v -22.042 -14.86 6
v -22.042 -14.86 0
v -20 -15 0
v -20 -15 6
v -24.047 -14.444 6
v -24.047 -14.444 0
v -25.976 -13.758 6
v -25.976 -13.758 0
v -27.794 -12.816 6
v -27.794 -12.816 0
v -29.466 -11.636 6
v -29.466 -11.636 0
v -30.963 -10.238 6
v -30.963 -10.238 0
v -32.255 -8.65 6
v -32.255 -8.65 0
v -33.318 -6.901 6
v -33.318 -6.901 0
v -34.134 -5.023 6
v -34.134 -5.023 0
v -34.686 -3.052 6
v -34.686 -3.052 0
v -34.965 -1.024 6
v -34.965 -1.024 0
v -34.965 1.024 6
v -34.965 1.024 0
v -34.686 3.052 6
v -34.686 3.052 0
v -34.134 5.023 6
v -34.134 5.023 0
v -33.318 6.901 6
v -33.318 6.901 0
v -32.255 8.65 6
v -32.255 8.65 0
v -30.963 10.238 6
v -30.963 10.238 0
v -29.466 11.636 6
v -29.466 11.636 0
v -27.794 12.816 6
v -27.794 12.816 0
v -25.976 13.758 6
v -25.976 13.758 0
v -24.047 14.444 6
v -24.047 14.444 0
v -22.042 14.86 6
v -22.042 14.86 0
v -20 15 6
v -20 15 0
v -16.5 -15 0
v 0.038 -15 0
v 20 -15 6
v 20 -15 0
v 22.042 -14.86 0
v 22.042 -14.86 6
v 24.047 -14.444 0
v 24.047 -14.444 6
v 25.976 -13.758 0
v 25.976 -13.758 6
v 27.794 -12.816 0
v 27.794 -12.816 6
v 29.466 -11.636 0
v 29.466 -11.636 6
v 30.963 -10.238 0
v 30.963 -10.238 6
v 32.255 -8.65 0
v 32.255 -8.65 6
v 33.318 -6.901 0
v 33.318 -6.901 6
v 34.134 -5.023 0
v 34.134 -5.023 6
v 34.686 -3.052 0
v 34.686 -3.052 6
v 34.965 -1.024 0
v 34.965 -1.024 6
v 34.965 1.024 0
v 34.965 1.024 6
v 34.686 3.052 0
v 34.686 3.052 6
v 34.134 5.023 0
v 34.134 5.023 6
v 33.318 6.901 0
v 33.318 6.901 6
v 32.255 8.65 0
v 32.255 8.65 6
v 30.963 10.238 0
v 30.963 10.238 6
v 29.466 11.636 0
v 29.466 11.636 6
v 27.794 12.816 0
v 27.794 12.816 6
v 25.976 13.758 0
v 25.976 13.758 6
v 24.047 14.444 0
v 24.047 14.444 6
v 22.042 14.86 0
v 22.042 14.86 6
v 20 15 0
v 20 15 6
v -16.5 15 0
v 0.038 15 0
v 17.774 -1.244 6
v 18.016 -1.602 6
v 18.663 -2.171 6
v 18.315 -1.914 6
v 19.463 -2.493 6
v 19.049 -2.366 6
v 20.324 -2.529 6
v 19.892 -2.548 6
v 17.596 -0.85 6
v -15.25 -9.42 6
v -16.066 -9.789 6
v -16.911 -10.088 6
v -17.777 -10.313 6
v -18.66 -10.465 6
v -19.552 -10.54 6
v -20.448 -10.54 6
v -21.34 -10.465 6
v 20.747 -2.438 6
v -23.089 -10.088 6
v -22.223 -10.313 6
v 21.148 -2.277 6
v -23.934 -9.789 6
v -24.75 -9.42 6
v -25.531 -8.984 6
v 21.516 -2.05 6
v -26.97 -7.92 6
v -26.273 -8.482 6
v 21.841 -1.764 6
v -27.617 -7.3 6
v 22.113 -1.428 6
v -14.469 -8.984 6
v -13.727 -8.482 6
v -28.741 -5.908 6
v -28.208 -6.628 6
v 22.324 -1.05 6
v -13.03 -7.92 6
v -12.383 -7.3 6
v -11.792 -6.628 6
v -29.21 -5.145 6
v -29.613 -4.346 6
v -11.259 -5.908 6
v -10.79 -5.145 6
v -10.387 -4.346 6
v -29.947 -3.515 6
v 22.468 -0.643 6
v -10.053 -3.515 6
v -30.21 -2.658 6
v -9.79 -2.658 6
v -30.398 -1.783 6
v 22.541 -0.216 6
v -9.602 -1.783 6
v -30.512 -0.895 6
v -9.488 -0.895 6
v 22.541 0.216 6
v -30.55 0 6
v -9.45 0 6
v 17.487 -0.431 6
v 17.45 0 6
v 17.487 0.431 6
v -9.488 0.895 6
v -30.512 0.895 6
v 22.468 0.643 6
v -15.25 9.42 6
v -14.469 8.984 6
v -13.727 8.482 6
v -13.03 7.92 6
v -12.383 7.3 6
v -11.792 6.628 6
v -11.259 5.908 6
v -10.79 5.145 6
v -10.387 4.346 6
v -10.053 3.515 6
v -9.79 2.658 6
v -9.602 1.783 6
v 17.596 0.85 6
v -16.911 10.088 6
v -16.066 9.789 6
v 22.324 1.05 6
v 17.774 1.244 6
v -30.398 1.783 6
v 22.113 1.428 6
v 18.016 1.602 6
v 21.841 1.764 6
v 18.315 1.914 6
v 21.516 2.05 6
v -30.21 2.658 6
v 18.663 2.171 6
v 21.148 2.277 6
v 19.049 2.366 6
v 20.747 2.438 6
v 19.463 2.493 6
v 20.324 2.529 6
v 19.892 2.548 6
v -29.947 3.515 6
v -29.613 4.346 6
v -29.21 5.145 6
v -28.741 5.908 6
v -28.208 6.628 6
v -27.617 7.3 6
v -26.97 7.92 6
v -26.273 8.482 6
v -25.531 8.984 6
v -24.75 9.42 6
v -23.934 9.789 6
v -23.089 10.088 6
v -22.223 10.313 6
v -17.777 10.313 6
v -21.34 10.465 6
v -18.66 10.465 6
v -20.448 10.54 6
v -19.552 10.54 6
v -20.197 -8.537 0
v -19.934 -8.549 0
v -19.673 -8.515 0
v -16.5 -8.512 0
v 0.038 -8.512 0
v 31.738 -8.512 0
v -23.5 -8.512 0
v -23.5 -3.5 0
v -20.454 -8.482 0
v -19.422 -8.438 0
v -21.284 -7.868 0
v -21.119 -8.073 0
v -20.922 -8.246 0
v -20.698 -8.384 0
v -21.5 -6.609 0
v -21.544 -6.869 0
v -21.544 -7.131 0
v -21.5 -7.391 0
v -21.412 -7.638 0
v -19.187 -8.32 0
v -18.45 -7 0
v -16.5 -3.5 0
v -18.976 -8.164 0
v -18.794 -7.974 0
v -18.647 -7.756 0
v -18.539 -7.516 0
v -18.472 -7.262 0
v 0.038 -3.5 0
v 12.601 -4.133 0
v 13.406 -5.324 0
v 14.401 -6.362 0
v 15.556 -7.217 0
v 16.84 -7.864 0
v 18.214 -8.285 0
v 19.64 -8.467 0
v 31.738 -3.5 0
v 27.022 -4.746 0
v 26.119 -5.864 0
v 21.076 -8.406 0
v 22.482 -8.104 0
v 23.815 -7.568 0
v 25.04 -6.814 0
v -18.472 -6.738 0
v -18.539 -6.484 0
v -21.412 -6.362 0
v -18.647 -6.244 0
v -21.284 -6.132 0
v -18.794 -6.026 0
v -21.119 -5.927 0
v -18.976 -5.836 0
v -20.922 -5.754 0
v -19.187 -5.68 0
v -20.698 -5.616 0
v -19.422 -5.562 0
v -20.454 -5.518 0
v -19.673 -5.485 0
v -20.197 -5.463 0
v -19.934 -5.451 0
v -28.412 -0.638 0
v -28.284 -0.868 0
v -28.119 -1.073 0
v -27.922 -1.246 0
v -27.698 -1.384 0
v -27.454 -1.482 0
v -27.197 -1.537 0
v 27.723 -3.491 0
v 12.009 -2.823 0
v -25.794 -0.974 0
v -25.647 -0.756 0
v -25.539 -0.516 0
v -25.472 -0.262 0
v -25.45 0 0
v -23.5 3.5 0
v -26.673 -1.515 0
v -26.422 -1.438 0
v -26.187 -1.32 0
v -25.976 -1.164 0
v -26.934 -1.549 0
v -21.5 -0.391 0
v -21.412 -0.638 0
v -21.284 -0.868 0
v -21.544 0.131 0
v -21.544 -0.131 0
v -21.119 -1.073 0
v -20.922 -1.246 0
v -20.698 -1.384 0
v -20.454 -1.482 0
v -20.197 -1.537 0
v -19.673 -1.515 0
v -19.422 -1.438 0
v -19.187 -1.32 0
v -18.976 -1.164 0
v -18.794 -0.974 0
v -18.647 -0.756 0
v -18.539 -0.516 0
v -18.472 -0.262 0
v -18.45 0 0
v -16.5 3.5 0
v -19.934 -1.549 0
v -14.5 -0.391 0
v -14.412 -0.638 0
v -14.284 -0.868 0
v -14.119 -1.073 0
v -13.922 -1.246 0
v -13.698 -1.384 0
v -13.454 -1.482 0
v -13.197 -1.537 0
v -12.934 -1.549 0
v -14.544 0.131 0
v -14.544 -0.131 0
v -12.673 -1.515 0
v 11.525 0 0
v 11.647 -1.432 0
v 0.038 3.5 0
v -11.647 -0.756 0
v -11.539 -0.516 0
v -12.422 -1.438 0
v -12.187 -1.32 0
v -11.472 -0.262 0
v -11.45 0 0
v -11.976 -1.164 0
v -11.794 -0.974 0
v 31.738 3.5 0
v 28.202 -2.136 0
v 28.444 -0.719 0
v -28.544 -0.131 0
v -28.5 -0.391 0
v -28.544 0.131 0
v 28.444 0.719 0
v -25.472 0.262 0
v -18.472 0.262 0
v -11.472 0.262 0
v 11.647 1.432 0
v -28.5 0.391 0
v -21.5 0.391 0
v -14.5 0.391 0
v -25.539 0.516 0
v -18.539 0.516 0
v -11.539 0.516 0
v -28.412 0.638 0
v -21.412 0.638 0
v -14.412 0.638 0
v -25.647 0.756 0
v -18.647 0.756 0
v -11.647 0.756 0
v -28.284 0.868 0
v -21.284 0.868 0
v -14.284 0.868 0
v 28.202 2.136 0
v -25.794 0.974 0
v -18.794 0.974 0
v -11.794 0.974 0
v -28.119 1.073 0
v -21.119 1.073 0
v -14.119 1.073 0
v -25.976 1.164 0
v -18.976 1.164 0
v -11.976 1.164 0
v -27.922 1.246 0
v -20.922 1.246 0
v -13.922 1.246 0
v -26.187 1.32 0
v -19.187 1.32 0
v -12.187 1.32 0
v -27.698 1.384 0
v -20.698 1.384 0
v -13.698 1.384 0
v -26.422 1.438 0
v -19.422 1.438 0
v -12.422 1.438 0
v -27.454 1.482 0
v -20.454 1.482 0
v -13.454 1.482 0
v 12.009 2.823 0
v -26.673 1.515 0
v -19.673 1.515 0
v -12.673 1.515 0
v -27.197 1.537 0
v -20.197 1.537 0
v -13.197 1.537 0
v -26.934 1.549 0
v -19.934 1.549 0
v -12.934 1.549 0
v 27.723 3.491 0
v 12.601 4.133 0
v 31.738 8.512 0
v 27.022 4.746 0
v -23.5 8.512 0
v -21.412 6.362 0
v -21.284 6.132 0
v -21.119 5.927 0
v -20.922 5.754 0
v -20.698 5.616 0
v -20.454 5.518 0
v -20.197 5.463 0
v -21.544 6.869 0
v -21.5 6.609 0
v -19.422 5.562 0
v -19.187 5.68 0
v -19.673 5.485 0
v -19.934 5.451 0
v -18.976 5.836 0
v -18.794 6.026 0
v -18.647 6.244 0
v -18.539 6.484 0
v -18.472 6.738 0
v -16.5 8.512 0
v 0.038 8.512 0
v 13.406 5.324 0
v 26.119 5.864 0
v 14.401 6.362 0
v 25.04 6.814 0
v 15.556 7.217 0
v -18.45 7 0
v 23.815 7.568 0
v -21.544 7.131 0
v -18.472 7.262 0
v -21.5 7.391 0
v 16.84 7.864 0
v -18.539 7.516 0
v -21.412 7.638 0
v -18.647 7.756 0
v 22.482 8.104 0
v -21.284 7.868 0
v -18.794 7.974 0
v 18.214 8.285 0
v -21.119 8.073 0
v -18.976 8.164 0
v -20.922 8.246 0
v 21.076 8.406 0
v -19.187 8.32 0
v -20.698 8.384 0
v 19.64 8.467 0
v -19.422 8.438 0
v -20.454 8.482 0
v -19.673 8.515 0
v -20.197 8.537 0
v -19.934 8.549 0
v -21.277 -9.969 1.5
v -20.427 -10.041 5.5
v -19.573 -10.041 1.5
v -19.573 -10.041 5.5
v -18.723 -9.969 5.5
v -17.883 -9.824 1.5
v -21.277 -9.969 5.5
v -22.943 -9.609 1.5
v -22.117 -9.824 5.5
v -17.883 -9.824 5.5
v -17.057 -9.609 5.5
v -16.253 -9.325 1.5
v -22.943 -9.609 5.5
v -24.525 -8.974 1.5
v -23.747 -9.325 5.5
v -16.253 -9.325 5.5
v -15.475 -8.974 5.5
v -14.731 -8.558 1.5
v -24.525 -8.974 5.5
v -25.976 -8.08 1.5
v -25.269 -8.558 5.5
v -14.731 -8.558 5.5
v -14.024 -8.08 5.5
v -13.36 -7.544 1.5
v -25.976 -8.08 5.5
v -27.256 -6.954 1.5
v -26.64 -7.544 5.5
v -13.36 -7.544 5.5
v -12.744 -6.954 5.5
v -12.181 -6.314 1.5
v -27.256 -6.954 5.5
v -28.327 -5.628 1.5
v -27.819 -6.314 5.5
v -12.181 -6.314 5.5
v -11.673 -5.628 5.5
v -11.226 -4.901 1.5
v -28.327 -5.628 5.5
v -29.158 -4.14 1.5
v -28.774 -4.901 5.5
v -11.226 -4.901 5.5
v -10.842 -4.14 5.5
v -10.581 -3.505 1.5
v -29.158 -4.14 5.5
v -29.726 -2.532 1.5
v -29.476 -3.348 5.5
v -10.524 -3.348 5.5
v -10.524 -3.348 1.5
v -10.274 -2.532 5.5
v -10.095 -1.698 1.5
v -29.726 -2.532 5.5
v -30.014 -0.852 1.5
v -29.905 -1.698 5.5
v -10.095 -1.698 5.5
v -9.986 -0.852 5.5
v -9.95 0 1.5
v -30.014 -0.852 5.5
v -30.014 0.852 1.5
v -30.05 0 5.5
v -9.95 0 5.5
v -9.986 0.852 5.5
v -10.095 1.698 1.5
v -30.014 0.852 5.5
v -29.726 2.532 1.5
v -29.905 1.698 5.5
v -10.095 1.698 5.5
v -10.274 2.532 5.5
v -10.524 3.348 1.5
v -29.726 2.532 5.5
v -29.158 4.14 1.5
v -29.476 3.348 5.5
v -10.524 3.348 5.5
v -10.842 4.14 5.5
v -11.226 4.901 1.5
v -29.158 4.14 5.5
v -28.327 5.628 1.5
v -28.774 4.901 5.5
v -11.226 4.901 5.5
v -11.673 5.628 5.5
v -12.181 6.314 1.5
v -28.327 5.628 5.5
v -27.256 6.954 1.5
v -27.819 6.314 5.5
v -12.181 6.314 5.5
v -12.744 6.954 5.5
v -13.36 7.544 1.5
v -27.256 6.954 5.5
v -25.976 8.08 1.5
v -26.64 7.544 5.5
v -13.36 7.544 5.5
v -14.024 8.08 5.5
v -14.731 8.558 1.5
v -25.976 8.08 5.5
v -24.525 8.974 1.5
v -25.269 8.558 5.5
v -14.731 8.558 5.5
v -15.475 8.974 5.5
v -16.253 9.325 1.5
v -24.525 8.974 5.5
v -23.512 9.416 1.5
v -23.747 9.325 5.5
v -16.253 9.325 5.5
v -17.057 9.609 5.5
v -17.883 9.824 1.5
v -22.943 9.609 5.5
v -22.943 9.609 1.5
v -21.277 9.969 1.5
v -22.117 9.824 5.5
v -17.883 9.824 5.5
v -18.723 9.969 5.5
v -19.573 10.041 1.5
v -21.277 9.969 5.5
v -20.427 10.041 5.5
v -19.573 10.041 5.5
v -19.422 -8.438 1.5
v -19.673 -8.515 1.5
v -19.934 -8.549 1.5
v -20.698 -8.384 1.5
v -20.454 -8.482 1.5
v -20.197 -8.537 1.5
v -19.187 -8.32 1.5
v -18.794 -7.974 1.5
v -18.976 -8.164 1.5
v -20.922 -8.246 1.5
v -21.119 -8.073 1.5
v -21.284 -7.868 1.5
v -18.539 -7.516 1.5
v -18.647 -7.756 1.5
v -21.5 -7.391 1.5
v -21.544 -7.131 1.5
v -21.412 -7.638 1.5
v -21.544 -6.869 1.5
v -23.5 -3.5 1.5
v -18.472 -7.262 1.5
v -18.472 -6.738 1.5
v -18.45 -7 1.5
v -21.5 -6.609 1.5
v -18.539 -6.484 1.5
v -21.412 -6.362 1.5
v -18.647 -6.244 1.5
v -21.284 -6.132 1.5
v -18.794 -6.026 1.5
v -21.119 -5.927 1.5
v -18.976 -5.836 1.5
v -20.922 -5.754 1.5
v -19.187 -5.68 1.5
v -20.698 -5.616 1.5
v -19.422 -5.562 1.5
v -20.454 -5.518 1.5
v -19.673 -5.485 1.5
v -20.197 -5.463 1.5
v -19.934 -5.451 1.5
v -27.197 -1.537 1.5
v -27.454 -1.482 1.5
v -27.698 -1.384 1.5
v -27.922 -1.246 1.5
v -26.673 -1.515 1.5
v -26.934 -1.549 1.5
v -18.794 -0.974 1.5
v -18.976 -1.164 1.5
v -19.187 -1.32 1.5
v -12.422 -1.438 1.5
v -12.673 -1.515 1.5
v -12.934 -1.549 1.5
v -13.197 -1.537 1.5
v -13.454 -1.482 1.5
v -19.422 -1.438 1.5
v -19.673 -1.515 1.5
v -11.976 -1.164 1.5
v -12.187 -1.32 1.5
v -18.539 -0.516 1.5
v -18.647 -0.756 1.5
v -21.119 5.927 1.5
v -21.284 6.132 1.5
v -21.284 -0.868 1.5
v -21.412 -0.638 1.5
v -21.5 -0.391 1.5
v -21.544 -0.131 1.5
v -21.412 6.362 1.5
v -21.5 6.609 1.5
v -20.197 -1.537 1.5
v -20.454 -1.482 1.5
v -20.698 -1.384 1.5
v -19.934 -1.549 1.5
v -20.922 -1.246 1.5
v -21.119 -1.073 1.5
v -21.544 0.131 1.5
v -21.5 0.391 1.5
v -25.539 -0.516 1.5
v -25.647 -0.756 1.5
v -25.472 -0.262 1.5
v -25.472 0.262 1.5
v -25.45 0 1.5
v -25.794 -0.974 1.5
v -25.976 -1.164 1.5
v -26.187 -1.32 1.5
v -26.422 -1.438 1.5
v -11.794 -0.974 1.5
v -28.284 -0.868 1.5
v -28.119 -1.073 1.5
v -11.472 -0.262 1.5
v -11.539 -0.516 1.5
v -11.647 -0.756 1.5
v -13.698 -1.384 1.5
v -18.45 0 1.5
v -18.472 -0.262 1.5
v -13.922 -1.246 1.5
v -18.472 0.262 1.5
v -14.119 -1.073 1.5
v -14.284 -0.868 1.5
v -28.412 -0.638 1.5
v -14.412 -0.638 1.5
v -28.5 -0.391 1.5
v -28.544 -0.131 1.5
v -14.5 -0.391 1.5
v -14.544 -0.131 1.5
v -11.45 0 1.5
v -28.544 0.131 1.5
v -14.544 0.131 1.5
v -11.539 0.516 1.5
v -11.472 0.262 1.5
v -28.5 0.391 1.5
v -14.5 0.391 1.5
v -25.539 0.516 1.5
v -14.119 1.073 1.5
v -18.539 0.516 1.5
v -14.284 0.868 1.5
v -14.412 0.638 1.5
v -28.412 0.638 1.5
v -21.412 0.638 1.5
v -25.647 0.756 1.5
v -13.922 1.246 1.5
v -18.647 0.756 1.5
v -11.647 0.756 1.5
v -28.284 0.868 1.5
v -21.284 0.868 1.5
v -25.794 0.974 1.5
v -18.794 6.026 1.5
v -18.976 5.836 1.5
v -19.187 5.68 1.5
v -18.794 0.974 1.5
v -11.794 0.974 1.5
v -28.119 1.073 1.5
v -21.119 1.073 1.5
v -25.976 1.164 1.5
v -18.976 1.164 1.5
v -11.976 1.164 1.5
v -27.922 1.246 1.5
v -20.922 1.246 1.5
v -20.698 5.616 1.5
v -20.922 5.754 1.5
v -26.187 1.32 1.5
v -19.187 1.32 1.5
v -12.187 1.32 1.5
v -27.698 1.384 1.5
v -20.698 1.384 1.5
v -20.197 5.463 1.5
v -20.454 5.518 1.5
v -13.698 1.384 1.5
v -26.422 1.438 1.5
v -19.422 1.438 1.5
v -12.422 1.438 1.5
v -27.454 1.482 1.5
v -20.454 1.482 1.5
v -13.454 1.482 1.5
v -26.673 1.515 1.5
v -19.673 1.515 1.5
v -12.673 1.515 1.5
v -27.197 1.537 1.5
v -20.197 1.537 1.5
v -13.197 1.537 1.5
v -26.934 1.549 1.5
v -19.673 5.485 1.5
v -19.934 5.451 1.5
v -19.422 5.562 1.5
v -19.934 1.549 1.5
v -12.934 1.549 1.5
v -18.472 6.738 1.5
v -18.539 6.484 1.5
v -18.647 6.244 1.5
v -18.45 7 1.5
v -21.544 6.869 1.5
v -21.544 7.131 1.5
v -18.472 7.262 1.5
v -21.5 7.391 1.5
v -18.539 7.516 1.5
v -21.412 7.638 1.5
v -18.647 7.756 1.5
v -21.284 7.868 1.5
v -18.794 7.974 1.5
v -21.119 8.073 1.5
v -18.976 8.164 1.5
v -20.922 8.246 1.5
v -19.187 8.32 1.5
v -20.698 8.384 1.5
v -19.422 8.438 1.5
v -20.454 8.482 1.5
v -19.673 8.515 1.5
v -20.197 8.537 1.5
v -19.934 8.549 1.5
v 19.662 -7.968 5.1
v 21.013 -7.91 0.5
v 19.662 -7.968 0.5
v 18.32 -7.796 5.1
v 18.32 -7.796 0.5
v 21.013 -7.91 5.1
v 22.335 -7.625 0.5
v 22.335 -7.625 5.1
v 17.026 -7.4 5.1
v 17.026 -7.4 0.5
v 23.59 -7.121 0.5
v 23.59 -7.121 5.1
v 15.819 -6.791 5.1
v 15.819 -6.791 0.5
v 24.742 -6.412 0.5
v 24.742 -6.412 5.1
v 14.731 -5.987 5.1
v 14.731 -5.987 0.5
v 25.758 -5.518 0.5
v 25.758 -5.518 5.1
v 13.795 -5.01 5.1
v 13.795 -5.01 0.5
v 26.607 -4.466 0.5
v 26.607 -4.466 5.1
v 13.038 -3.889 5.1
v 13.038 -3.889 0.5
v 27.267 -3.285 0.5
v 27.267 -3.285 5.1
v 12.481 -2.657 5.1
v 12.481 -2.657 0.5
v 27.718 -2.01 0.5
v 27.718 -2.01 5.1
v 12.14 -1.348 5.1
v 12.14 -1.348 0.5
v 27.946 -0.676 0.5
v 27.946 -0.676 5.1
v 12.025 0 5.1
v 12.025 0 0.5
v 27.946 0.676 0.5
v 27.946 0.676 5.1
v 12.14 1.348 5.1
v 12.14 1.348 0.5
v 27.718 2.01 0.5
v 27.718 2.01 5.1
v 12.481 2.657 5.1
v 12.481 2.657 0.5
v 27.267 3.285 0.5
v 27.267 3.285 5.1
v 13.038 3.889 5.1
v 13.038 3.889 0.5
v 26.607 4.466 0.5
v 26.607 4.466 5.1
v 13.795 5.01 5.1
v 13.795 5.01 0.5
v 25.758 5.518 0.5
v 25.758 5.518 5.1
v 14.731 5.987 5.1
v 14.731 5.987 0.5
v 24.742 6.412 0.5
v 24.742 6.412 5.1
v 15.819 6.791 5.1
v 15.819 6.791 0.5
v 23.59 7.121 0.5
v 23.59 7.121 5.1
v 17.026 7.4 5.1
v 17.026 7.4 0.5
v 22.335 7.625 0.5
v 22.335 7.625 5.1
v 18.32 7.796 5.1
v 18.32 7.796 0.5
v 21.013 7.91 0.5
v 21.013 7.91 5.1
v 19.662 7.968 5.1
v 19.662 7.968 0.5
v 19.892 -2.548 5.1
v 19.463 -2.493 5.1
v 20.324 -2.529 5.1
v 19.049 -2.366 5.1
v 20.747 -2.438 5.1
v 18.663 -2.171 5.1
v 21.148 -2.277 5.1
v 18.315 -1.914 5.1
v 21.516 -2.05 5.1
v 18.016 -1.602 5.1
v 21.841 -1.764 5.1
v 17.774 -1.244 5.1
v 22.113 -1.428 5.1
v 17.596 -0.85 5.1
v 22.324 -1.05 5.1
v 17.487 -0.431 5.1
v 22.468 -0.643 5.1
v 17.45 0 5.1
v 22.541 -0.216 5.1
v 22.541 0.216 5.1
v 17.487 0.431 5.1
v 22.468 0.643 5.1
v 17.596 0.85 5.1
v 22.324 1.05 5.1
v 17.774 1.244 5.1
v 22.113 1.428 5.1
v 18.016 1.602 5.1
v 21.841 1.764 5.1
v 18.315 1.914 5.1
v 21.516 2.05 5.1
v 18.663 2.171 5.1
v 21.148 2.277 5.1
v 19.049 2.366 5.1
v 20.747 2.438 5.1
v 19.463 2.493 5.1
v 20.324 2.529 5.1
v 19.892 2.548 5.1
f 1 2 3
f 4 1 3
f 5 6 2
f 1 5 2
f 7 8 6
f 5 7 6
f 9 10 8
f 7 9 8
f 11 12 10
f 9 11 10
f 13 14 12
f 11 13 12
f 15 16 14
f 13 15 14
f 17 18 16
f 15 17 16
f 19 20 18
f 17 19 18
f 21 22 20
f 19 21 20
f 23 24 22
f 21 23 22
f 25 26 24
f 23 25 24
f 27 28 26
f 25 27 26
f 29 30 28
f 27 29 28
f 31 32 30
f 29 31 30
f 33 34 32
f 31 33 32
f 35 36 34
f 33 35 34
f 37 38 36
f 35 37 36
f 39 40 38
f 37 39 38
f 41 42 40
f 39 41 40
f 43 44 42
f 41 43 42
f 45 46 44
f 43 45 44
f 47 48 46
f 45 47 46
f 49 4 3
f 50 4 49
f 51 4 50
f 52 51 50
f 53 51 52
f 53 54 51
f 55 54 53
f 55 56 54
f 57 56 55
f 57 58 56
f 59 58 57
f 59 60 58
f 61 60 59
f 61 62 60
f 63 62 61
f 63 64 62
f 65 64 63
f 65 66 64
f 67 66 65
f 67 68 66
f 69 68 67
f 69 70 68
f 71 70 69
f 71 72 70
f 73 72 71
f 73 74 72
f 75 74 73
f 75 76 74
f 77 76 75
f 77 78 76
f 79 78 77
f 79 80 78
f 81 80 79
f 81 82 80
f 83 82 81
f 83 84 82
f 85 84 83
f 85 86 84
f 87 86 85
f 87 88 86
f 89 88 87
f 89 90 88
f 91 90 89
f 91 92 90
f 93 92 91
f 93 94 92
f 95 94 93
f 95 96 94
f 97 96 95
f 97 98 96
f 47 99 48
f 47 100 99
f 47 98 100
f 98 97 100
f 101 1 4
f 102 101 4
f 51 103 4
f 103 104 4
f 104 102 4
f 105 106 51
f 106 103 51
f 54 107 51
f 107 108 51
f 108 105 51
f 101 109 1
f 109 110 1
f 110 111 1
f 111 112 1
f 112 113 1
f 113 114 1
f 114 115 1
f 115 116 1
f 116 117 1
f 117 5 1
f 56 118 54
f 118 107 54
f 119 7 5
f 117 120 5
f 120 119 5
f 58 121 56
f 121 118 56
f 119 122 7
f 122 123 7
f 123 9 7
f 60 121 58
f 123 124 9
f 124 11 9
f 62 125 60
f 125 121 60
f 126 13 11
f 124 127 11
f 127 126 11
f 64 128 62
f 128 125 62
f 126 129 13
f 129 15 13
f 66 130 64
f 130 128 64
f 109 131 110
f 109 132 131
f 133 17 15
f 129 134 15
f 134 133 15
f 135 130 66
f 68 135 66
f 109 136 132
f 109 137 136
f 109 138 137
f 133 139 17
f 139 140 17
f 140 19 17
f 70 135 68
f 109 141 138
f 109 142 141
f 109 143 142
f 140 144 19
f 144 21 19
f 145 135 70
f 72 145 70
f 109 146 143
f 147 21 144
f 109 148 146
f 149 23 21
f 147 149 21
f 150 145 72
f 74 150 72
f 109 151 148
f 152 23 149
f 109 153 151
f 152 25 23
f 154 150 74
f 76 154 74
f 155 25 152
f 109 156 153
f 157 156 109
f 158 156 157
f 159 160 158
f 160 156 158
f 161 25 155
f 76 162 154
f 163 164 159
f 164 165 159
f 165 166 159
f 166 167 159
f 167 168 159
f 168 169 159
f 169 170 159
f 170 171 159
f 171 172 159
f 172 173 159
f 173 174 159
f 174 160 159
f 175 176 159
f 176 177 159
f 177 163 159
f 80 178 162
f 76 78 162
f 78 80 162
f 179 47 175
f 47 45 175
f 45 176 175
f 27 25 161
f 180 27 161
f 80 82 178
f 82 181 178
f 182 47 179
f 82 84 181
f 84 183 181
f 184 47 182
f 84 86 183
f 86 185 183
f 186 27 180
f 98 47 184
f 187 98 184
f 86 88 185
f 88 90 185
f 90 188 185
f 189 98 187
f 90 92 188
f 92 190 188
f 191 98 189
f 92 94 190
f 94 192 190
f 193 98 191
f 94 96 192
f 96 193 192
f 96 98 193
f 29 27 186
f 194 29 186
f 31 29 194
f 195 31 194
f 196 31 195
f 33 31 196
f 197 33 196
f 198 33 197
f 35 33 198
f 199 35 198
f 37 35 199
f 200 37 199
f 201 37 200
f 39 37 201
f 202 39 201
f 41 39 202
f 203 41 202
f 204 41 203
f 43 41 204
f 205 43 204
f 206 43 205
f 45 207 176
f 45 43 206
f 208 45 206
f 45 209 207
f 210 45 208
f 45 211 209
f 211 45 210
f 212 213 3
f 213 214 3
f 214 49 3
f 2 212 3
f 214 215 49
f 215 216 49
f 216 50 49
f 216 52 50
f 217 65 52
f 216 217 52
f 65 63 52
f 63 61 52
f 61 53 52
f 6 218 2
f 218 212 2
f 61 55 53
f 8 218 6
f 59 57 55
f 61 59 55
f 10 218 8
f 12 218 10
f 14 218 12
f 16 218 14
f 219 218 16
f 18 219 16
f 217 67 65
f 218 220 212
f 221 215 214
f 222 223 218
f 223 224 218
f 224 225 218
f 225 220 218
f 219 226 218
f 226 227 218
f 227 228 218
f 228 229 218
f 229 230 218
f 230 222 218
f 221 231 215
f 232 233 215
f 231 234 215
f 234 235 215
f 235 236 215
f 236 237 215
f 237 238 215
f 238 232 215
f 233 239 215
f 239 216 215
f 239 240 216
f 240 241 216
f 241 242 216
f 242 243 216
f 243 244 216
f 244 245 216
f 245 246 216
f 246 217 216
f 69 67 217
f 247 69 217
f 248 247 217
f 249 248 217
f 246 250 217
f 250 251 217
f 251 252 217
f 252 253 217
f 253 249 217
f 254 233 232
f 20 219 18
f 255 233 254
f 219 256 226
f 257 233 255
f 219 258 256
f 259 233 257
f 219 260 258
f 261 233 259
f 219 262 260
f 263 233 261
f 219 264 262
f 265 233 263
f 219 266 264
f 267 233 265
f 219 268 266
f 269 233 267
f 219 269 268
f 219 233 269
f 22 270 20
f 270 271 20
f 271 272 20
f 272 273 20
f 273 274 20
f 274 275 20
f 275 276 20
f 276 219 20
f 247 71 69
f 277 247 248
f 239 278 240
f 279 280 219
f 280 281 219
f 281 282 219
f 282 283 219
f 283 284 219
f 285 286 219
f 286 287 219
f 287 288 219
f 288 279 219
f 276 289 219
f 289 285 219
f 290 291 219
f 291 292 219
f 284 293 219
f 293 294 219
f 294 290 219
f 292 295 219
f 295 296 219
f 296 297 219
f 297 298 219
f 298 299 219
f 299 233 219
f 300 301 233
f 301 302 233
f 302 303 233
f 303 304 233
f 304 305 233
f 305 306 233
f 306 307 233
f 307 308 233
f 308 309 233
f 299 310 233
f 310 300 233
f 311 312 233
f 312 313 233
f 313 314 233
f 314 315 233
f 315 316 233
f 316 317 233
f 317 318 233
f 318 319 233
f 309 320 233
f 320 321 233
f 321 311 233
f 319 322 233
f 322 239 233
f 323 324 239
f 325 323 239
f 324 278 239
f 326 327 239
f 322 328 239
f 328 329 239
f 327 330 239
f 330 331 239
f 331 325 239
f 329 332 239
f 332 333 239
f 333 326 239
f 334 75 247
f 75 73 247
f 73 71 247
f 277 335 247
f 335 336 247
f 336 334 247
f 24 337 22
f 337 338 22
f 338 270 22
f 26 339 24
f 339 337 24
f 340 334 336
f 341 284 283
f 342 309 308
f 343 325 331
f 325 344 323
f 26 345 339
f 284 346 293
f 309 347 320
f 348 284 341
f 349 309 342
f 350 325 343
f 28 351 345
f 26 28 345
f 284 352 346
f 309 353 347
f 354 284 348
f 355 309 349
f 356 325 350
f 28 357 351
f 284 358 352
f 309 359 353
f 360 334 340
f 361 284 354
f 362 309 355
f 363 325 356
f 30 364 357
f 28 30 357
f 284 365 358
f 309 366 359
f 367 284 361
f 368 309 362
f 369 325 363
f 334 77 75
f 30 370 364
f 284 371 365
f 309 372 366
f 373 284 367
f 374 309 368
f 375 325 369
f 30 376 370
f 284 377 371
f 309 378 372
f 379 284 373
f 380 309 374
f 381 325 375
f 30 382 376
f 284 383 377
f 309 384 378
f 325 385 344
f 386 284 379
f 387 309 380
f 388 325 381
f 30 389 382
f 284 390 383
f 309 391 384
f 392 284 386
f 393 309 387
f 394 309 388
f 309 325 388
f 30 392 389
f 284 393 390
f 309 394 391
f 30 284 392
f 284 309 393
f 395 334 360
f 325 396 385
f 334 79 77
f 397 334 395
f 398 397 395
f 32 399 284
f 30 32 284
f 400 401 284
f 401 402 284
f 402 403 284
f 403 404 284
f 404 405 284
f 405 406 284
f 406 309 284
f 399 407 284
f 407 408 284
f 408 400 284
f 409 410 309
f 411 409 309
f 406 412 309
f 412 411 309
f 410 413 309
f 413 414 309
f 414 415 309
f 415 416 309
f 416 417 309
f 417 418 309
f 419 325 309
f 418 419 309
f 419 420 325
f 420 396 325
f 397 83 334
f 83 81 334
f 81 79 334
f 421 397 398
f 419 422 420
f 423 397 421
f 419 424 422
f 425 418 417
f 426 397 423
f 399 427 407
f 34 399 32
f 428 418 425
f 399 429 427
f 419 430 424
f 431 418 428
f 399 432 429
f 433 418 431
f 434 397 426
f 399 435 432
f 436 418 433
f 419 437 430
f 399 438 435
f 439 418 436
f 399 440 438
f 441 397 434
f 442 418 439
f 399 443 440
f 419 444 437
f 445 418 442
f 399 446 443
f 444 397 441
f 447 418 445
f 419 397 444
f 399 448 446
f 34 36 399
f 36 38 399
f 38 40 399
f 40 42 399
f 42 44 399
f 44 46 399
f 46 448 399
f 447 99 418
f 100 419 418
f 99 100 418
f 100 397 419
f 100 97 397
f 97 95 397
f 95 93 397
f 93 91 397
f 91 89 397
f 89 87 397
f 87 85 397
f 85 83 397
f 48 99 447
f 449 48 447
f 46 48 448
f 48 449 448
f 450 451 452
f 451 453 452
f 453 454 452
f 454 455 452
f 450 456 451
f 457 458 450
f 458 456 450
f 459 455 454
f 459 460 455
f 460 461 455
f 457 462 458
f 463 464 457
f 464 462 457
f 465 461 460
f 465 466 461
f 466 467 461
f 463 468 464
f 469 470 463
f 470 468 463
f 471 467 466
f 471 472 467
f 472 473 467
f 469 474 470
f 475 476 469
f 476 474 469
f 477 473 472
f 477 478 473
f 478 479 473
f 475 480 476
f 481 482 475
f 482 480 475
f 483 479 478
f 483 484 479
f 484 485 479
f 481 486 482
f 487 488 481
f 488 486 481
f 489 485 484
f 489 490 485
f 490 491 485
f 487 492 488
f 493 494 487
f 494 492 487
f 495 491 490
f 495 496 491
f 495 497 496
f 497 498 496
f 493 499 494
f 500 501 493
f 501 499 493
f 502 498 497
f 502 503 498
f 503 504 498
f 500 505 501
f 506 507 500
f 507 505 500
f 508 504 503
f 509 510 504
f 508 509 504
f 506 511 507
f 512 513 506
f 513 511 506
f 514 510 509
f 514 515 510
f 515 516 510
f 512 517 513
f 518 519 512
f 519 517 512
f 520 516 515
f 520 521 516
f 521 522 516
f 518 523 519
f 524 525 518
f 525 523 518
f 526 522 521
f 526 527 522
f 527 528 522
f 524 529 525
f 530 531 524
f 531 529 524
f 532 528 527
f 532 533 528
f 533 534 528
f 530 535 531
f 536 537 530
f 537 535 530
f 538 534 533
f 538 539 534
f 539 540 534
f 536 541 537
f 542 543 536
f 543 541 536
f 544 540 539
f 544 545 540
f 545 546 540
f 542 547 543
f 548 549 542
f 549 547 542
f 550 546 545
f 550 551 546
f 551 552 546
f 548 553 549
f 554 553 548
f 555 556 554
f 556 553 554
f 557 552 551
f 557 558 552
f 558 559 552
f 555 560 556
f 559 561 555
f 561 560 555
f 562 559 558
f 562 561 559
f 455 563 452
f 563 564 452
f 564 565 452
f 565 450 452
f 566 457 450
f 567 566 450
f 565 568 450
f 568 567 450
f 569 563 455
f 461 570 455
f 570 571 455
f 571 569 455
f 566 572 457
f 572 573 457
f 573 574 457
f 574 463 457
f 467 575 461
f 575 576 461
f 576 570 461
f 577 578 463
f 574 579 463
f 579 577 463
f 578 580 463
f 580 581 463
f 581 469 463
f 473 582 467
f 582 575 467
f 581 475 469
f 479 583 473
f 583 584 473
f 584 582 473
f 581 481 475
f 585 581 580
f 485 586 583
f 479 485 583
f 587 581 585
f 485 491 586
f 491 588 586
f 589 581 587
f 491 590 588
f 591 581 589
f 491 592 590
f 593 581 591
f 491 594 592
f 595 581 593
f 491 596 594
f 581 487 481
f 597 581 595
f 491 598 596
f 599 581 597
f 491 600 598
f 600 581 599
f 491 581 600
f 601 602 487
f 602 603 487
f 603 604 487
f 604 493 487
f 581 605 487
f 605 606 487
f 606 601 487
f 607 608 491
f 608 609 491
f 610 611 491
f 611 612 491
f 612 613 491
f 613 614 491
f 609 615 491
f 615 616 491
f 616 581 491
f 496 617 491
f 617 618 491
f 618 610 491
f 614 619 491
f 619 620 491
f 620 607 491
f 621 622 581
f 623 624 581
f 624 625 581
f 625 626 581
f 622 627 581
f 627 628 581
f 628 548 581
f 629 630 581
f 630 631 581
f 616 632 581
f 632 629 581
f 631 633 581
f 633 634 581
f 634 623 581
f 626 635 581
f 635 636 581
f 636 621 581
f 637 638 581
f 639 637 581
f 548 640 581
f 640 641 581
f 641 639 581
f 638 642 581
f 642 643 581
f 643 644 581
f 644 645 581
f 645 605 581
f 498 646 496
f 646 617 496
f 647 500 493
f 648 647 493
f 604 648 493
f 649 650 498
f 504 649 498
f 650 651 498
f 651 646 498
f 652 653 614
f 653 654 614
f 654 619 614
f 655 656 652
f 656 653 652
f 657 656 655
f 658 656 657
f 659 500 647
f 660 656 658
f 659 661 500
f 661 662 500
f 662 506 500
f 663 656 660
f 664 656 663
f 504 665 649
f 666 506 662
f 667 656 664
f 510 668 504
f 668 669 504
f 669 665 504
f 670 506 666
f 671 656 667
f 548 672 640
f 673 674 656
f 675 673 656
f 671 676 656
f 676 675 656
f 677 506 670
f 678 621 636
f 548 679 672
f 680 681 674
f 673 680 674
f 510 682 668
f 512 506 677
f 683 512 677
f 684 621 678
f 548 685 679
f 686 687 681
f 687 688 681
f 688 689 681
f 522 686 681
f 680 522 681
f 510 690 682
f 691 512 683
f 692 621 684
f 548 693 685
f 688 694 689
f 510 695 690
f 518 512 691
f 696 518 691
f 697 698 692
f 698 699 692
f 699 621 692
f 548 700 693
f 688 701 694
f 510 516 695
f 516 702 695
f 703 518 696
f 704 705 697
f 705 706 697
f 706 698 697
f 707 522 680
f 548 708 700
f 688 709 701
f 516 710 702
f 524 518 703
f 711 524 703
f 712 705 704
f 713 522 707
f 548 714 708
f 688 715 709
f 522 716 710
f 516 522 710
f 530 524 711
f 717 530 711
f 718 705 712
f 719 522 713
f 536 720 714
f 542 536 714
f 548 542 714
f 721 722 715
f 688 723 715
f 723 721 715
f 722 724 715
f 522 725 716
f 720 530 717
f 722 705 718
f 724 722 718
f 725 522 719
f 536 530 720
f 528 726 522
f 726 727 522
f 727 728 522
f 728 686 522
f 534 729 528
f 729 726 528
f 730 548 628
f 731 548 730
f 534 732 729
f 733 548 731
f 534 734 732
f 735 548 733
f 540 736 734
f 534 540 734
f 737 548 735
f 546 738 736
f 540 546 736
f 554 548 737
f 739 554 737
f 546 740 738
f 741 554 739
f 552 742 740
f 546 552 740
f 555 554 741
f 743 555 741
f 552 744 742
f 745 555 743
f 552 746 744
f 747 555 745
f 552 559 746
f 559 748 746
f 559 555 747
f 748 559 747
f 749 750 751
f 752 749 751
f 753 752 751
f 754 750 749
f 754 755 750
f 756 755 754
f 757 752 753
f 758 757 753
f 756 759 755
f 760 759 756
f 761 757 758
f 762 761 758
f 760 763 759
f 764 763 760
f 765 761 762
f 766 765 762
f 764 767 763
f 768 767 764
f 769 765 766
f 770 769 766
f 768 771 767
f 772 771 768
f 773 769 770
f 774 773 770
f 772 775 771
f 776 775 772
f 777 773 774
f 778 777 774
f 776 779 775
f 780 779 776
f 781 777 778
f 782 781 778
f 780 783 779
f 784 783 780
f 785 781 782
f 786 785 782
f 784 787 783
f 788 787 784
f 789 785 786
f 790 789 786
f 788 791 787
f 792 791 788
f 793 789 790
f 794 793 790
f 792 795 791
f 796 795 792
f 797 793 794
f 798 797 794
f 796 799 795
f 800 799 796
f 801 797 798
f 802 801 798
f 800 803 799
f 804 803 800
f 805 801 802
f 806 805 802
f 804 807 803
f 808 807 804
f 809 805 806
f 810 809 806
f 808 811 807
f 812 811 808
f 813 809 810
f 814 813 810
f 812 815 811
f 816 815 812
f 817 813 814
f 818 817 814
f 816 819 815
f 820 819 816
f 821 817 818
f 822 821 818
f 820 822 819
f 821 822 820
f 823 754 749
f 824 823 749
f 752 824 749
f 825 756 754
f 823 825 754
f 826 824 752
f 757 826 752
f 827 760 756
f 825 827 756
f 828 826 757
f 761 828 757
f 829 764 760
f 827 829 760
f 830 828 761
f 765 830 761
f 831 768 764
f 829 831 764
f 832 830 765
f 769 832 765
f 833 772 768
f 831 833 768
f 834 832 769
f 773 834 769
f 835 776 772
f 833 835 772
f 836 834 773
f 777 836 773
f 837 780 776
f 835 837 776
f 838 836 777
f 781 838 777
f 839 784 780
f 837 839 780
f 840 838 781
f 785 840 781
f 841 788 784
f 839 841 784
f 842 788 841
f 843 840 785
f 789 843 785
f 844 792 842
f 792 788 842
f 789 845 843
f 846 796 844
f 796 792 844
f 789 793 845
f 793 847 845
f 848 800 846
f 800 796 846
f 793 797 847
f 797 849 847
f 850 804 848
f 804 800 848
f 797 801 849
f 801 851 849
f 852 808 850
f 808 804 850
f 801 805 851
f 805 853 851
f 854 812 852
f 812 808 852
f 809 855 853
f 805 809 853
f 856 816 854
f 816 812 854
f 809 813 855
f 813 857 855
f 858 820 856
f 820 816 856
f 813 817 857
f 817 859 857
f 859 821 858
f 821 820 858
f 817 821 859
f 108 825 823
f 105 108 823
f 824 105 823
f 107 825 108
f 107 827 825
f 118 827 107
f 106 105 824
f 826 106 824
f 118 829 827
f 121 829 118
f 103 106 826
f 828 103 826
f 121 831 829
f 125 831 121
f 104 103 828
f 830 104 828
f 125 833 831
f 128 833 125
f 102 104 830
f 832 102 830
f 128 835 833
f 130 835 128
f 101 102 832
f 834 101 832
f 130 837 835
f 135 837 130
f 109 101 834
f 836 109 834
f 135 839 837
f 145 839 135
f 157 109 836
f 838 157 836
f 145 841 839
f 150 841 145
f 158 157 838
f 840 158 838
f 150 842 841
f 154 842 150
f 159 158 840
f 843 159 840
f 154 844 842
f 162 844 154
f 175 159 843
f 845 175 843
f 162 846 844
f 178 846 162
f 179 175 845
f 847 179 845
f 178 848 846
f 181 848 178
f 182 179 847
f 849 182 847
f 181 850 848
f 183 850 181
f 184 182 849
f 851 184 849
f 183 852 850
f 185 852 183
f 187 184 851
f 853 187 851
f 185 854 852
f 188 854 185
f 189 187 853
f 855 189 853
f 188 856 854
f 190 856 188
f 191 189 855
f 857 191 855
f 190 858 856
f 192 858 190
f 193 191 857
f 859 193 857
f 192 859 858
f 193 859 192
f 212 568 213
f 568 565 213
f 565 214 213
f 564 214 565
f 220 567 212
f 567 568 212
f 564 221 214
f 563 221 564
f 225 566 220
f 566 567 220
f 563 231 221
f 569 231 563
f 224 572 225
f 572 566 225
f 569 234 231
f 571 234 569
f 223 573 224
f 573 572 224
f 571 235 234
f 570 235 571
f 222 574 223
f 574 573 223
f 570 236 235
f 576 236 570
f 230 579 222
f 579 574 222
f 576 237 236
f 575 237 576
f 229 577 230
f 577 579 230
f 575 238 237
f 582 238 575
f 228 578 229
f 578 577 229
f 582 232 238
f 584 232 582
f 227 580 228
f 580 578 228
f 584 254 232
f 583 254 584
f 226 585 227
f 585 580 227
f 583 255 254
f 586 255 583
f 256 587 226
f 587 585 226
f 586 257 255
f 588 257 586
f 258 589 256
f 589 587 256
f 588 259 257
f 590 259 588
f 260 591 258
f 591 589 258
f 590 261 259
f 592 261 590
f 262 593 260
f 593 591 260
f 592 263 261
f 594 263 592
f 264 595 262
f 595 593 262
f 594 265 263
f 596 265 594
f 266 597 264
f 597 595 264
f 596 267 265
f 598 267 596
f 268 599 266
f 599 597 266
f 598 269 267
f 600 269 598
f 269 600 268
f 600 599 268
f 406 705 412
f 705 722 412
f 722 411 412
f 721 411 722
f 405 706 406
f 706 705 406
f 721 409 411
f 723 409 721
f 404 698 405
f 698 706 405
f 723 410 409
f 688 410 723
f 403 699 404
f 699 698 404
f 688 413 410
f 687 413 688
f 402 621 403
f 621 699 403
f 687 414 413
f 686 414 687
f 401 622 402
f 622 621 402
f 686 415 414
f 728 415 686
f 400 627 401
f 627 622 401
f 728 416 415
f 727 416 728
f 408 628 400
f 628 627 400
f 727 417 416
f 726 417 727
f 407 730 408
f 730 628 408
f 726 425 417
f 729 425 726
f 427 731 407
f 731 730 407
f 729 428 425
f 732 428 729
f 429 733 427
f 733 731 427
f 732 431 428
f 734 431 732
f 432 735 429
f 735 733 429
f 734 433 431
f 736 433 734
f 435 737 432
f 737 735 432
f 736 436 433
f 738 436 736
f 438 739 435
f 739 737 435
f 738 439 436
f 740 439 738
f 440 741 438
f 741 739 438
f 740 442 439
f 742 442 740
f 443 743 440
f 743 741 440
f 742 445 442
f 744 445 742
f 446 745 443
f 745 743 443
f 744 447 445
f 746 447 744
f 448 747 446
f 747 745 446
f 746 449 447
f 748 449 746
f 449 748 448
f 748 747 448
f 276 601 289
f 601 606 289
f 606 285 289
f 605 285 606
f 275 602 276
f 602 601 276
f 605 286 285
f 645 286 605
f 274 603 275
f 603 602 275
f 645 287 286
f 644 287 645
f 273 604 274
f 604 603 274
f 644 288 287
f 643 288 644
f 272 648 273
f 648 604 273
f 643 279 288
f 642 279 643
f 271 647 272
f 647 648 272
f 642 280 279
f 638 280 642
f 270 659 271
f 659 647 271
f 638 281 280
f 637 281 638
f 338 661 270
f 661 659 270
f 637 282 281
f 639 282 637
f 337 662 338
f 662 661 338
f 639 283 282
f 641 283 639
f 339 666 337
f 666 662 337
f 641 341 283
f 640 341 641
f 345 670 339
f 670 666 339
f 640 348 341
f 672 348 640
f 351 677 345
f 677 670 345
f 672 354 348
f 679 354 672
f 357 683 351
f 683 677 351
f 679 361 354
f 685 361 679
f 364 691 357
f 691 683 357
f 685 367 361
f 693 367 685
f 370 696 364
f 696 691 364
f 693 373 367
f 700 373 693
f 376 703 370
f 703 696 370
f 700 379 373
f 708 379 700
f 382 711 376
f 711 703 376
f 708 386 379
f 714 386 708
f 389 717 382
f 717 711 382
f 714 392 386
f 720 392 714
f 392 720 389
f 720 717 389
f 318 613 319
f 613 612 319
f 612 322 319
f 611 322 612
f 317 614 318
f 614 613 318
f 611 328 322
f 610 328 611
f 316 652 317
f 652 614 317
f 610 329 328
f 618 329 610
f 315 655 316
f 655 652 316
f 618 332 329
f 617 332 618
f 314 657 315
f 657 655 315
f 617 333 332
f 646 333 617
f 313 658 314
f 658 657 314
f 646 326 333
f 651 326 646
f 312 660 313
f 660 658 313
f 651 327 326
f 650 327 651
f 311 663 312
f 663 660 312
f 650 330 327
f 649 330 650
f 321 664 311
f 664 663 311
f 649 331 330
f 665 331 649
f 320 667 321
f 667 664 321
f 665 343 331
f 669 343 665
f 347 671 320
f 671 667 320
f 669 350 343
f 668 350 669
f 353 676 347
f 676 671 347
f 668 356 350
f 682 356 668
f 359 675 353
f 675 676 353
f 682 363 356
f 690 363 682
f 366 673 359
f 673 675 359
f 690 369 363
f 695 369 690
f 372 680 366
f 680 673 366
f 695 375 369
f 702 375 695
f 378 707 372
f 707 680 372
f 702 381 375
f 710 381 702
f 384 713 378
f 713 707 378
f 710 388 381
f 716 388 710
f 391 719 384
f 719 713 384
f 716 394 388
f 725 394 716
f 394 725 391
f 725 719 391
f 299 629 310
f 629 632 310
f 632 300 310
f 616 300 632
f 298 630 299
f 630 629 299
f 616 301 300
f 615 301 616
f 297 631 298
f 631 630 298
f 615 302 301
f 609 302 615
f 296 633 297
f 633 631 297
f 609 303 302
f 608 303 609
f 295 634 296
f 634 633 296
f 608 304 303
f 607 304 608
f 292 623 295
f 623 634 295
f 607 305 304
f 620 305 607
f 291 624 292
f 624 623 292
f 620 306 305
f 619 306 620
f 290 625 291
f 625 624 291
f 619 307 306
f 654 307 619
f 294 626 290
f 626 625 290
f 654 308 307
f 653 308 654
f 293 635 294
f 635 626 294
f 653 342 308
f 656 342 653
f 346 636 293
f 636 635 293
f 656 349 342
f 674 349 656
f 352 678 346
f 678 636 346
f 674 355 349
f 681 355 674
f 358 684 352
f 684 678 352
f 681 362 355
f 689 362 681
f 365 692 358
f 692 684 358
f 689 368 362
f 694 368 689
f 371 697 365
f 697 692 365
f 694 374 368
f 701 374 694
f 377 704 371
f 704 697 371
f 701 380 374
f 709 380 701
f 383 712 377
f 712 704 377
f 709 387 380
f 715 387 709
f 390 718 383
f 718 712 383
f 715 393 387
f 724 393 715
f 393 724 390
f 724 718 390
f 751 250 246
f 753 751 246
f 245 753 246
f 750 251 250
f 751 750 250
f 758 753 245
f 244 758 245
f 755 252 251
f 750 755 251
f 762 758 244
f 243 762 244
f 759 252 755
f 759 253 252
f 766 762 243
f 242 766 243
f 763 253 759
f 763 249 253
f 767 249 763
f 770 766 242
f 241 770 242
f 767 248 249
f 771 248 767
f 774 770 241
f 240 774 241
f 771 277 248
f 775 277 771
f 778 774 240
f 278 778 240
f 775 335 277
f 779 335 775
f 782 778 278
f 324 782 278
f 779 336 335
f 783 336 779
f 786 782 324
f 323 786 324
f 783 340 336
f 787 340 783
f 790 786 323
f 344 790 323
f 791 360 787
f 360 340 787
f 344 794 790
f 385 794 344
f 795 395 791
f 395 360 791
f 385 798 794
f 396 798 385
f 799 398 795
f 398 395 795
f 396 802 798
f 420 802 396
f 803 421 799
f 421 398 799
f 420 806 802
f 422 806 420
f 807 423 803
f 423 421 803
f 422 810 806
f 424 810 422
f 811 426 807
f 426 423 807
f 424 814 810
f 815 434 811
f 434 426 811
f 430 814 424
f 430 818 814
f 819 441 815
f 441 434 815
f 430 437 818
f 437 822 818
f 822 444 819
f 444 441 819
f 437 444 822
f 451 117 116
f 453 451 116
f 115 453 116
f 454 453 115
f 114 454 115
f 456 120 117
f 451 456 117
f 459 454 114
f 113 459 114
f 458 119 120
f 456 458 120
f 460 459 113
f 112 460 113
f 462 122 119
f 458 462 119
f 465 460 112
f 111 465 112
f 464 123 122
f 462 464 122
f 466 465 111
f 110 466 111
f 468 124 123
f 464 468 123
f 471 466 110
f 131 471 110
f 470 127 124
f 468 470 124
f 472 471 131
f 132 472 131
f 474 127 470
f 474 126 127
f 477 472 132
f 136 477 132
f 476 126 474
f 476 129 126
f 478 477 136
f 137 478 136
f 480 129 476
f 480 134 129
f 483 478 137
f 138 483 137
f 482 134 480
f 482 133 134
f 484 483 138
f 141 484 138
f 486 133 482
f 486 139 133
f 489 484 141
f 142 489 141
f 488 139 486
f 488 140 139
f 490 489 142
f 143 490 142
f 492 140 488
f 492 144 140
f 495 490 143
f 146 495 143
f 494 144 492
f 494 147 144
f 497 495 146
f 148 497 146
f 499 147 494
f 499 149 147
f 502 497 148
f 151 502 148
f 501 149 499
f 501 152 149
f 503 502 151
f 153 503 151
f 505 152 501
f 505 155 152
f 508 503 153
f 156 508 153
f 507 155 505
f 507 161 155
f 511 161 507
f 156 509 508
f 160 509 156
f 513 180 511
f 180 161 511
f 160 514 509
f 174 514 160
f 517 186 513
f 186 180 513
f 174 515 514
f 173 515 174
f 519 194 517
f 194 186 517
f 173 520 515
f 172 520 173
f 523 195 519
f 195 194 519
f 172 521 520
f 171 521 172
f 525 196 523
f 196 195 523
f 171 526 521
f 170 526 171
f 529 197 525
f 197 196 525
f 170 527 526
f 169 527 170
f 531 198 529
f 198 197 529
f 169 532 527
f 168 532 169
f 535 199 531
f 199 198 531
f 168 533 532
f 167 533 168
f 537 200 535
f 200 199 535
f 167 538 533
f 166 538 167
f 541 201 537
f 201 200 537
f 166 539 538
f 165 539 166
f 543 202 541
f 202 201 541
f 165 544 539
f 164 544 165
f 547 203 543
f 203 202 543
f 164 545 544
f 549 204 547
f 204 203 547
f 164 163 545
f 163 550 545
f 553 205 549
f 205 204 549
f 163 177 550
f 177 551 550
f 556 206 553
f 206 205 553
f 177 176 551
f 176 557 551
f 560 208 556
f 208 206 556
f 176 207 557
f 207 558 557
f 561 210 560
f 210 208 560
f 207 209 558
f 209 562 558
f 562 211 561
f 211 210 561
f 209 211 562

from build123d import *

# Parameters (mm, degrees)
BOSS_EXTRUDE1_DEPTH = 6
SKETCH8_R           = 10.05
CUT_EXTRUDE4_DEPTH  = 4.5
SKETCH9_R           = 7.975
CUT_EXTRUDE5_DEPTH  = 5.1
SKETCH10_R          = 2.55
CUT_EXTRUDE6_DEPTH  = 1.9
SKETCH11_R          = 1.55
CUT_EXTRUDE7_DEPTH  = 2.5
CHAMFER1_SIZE       = 0.5


with BuildPart() as part:
    # Sketch4 → Boss-Extrude1 (new body)
    with BuildSketch(Plane.XY):
        with BuildLine():
            Line((-20, 15), (20, 15))
            ThreePointArc((20, 15), (35, 0), (20, -15))
            Line((20, -15), (-20, -15))
            ThreePointArc((-20, -15), (-35, 0), (-20, 15))
        make_face()
    extrude(amount=BOSS_EXTRUDE1_DEPTH)

    # Sketch8 → Cut-Extrude4 (cut)
    with BuildSketch(Plane.XY.offset(6)):
        with Locations((-20, 0)):
            Circle(SKETCH8_R)
    extrude(amount=-CUT_EXTRUDE4_DEPTH, mode=Mode.SUBTRACT)

    # Sketch9 → Cut-Extrude5 (cut)
    with BuildSketch(Plane(origin=(0, 0, 0), x_dir=(-1, 0, 0), z_dir=(0, 0, -1))):
        with Locations((-20, 0)):
            Circle(SKETCH9_R)
    extrude(amount=-CUT_EXTRUDE5_DEPTH, mode=Mode.SUBTRACT)

    # Sketch10 → Cut-Extrude6 (cut, through all)
    with BuildSketch(Plane(origin=(0, 0, 5.1), x_dir=(-1, 0, 0), z_dir=(0, 0, -1))):
        with Locations((-20, 0)):
            Circle(SKETCH10_R)
    extrude(amount=-CUT_EXTRUDE6_DEPTH, mode=Mode.SUBTRACT)

    # Sketch11 → Cut-Extrude7 (cut, through all)
    with BuildSketch(Plane.XY.offset(1.5)):
        with Locations((-20, 0)):
            Circle(SKETCH11_R)
        with Locations((-13, 0)):
            Circle(SKETCH11_R)
        with Locations((-27, 0)):
            Circle(SKETCH11_R)
        with Locations((-20, 7)):
            Circle(SKETCH11_R)
        with Locations((-20, -7)):
            Circle(SKETCH11_R)
    extrude(amount=-CUT_EXTRUDE7_DEPTH, mode=Mode.SUBTRACT)

    # Chamfer1
    chamfer1_edges = [part.edges().sort_by_distance(p)[0] for p in [
        (-30.05, 0, 6),
        (27.975, 0, 0),
    ]]
    chamfer(chamfer1_edges, length=CHAMFER1_SIZE)


solid = part.part
